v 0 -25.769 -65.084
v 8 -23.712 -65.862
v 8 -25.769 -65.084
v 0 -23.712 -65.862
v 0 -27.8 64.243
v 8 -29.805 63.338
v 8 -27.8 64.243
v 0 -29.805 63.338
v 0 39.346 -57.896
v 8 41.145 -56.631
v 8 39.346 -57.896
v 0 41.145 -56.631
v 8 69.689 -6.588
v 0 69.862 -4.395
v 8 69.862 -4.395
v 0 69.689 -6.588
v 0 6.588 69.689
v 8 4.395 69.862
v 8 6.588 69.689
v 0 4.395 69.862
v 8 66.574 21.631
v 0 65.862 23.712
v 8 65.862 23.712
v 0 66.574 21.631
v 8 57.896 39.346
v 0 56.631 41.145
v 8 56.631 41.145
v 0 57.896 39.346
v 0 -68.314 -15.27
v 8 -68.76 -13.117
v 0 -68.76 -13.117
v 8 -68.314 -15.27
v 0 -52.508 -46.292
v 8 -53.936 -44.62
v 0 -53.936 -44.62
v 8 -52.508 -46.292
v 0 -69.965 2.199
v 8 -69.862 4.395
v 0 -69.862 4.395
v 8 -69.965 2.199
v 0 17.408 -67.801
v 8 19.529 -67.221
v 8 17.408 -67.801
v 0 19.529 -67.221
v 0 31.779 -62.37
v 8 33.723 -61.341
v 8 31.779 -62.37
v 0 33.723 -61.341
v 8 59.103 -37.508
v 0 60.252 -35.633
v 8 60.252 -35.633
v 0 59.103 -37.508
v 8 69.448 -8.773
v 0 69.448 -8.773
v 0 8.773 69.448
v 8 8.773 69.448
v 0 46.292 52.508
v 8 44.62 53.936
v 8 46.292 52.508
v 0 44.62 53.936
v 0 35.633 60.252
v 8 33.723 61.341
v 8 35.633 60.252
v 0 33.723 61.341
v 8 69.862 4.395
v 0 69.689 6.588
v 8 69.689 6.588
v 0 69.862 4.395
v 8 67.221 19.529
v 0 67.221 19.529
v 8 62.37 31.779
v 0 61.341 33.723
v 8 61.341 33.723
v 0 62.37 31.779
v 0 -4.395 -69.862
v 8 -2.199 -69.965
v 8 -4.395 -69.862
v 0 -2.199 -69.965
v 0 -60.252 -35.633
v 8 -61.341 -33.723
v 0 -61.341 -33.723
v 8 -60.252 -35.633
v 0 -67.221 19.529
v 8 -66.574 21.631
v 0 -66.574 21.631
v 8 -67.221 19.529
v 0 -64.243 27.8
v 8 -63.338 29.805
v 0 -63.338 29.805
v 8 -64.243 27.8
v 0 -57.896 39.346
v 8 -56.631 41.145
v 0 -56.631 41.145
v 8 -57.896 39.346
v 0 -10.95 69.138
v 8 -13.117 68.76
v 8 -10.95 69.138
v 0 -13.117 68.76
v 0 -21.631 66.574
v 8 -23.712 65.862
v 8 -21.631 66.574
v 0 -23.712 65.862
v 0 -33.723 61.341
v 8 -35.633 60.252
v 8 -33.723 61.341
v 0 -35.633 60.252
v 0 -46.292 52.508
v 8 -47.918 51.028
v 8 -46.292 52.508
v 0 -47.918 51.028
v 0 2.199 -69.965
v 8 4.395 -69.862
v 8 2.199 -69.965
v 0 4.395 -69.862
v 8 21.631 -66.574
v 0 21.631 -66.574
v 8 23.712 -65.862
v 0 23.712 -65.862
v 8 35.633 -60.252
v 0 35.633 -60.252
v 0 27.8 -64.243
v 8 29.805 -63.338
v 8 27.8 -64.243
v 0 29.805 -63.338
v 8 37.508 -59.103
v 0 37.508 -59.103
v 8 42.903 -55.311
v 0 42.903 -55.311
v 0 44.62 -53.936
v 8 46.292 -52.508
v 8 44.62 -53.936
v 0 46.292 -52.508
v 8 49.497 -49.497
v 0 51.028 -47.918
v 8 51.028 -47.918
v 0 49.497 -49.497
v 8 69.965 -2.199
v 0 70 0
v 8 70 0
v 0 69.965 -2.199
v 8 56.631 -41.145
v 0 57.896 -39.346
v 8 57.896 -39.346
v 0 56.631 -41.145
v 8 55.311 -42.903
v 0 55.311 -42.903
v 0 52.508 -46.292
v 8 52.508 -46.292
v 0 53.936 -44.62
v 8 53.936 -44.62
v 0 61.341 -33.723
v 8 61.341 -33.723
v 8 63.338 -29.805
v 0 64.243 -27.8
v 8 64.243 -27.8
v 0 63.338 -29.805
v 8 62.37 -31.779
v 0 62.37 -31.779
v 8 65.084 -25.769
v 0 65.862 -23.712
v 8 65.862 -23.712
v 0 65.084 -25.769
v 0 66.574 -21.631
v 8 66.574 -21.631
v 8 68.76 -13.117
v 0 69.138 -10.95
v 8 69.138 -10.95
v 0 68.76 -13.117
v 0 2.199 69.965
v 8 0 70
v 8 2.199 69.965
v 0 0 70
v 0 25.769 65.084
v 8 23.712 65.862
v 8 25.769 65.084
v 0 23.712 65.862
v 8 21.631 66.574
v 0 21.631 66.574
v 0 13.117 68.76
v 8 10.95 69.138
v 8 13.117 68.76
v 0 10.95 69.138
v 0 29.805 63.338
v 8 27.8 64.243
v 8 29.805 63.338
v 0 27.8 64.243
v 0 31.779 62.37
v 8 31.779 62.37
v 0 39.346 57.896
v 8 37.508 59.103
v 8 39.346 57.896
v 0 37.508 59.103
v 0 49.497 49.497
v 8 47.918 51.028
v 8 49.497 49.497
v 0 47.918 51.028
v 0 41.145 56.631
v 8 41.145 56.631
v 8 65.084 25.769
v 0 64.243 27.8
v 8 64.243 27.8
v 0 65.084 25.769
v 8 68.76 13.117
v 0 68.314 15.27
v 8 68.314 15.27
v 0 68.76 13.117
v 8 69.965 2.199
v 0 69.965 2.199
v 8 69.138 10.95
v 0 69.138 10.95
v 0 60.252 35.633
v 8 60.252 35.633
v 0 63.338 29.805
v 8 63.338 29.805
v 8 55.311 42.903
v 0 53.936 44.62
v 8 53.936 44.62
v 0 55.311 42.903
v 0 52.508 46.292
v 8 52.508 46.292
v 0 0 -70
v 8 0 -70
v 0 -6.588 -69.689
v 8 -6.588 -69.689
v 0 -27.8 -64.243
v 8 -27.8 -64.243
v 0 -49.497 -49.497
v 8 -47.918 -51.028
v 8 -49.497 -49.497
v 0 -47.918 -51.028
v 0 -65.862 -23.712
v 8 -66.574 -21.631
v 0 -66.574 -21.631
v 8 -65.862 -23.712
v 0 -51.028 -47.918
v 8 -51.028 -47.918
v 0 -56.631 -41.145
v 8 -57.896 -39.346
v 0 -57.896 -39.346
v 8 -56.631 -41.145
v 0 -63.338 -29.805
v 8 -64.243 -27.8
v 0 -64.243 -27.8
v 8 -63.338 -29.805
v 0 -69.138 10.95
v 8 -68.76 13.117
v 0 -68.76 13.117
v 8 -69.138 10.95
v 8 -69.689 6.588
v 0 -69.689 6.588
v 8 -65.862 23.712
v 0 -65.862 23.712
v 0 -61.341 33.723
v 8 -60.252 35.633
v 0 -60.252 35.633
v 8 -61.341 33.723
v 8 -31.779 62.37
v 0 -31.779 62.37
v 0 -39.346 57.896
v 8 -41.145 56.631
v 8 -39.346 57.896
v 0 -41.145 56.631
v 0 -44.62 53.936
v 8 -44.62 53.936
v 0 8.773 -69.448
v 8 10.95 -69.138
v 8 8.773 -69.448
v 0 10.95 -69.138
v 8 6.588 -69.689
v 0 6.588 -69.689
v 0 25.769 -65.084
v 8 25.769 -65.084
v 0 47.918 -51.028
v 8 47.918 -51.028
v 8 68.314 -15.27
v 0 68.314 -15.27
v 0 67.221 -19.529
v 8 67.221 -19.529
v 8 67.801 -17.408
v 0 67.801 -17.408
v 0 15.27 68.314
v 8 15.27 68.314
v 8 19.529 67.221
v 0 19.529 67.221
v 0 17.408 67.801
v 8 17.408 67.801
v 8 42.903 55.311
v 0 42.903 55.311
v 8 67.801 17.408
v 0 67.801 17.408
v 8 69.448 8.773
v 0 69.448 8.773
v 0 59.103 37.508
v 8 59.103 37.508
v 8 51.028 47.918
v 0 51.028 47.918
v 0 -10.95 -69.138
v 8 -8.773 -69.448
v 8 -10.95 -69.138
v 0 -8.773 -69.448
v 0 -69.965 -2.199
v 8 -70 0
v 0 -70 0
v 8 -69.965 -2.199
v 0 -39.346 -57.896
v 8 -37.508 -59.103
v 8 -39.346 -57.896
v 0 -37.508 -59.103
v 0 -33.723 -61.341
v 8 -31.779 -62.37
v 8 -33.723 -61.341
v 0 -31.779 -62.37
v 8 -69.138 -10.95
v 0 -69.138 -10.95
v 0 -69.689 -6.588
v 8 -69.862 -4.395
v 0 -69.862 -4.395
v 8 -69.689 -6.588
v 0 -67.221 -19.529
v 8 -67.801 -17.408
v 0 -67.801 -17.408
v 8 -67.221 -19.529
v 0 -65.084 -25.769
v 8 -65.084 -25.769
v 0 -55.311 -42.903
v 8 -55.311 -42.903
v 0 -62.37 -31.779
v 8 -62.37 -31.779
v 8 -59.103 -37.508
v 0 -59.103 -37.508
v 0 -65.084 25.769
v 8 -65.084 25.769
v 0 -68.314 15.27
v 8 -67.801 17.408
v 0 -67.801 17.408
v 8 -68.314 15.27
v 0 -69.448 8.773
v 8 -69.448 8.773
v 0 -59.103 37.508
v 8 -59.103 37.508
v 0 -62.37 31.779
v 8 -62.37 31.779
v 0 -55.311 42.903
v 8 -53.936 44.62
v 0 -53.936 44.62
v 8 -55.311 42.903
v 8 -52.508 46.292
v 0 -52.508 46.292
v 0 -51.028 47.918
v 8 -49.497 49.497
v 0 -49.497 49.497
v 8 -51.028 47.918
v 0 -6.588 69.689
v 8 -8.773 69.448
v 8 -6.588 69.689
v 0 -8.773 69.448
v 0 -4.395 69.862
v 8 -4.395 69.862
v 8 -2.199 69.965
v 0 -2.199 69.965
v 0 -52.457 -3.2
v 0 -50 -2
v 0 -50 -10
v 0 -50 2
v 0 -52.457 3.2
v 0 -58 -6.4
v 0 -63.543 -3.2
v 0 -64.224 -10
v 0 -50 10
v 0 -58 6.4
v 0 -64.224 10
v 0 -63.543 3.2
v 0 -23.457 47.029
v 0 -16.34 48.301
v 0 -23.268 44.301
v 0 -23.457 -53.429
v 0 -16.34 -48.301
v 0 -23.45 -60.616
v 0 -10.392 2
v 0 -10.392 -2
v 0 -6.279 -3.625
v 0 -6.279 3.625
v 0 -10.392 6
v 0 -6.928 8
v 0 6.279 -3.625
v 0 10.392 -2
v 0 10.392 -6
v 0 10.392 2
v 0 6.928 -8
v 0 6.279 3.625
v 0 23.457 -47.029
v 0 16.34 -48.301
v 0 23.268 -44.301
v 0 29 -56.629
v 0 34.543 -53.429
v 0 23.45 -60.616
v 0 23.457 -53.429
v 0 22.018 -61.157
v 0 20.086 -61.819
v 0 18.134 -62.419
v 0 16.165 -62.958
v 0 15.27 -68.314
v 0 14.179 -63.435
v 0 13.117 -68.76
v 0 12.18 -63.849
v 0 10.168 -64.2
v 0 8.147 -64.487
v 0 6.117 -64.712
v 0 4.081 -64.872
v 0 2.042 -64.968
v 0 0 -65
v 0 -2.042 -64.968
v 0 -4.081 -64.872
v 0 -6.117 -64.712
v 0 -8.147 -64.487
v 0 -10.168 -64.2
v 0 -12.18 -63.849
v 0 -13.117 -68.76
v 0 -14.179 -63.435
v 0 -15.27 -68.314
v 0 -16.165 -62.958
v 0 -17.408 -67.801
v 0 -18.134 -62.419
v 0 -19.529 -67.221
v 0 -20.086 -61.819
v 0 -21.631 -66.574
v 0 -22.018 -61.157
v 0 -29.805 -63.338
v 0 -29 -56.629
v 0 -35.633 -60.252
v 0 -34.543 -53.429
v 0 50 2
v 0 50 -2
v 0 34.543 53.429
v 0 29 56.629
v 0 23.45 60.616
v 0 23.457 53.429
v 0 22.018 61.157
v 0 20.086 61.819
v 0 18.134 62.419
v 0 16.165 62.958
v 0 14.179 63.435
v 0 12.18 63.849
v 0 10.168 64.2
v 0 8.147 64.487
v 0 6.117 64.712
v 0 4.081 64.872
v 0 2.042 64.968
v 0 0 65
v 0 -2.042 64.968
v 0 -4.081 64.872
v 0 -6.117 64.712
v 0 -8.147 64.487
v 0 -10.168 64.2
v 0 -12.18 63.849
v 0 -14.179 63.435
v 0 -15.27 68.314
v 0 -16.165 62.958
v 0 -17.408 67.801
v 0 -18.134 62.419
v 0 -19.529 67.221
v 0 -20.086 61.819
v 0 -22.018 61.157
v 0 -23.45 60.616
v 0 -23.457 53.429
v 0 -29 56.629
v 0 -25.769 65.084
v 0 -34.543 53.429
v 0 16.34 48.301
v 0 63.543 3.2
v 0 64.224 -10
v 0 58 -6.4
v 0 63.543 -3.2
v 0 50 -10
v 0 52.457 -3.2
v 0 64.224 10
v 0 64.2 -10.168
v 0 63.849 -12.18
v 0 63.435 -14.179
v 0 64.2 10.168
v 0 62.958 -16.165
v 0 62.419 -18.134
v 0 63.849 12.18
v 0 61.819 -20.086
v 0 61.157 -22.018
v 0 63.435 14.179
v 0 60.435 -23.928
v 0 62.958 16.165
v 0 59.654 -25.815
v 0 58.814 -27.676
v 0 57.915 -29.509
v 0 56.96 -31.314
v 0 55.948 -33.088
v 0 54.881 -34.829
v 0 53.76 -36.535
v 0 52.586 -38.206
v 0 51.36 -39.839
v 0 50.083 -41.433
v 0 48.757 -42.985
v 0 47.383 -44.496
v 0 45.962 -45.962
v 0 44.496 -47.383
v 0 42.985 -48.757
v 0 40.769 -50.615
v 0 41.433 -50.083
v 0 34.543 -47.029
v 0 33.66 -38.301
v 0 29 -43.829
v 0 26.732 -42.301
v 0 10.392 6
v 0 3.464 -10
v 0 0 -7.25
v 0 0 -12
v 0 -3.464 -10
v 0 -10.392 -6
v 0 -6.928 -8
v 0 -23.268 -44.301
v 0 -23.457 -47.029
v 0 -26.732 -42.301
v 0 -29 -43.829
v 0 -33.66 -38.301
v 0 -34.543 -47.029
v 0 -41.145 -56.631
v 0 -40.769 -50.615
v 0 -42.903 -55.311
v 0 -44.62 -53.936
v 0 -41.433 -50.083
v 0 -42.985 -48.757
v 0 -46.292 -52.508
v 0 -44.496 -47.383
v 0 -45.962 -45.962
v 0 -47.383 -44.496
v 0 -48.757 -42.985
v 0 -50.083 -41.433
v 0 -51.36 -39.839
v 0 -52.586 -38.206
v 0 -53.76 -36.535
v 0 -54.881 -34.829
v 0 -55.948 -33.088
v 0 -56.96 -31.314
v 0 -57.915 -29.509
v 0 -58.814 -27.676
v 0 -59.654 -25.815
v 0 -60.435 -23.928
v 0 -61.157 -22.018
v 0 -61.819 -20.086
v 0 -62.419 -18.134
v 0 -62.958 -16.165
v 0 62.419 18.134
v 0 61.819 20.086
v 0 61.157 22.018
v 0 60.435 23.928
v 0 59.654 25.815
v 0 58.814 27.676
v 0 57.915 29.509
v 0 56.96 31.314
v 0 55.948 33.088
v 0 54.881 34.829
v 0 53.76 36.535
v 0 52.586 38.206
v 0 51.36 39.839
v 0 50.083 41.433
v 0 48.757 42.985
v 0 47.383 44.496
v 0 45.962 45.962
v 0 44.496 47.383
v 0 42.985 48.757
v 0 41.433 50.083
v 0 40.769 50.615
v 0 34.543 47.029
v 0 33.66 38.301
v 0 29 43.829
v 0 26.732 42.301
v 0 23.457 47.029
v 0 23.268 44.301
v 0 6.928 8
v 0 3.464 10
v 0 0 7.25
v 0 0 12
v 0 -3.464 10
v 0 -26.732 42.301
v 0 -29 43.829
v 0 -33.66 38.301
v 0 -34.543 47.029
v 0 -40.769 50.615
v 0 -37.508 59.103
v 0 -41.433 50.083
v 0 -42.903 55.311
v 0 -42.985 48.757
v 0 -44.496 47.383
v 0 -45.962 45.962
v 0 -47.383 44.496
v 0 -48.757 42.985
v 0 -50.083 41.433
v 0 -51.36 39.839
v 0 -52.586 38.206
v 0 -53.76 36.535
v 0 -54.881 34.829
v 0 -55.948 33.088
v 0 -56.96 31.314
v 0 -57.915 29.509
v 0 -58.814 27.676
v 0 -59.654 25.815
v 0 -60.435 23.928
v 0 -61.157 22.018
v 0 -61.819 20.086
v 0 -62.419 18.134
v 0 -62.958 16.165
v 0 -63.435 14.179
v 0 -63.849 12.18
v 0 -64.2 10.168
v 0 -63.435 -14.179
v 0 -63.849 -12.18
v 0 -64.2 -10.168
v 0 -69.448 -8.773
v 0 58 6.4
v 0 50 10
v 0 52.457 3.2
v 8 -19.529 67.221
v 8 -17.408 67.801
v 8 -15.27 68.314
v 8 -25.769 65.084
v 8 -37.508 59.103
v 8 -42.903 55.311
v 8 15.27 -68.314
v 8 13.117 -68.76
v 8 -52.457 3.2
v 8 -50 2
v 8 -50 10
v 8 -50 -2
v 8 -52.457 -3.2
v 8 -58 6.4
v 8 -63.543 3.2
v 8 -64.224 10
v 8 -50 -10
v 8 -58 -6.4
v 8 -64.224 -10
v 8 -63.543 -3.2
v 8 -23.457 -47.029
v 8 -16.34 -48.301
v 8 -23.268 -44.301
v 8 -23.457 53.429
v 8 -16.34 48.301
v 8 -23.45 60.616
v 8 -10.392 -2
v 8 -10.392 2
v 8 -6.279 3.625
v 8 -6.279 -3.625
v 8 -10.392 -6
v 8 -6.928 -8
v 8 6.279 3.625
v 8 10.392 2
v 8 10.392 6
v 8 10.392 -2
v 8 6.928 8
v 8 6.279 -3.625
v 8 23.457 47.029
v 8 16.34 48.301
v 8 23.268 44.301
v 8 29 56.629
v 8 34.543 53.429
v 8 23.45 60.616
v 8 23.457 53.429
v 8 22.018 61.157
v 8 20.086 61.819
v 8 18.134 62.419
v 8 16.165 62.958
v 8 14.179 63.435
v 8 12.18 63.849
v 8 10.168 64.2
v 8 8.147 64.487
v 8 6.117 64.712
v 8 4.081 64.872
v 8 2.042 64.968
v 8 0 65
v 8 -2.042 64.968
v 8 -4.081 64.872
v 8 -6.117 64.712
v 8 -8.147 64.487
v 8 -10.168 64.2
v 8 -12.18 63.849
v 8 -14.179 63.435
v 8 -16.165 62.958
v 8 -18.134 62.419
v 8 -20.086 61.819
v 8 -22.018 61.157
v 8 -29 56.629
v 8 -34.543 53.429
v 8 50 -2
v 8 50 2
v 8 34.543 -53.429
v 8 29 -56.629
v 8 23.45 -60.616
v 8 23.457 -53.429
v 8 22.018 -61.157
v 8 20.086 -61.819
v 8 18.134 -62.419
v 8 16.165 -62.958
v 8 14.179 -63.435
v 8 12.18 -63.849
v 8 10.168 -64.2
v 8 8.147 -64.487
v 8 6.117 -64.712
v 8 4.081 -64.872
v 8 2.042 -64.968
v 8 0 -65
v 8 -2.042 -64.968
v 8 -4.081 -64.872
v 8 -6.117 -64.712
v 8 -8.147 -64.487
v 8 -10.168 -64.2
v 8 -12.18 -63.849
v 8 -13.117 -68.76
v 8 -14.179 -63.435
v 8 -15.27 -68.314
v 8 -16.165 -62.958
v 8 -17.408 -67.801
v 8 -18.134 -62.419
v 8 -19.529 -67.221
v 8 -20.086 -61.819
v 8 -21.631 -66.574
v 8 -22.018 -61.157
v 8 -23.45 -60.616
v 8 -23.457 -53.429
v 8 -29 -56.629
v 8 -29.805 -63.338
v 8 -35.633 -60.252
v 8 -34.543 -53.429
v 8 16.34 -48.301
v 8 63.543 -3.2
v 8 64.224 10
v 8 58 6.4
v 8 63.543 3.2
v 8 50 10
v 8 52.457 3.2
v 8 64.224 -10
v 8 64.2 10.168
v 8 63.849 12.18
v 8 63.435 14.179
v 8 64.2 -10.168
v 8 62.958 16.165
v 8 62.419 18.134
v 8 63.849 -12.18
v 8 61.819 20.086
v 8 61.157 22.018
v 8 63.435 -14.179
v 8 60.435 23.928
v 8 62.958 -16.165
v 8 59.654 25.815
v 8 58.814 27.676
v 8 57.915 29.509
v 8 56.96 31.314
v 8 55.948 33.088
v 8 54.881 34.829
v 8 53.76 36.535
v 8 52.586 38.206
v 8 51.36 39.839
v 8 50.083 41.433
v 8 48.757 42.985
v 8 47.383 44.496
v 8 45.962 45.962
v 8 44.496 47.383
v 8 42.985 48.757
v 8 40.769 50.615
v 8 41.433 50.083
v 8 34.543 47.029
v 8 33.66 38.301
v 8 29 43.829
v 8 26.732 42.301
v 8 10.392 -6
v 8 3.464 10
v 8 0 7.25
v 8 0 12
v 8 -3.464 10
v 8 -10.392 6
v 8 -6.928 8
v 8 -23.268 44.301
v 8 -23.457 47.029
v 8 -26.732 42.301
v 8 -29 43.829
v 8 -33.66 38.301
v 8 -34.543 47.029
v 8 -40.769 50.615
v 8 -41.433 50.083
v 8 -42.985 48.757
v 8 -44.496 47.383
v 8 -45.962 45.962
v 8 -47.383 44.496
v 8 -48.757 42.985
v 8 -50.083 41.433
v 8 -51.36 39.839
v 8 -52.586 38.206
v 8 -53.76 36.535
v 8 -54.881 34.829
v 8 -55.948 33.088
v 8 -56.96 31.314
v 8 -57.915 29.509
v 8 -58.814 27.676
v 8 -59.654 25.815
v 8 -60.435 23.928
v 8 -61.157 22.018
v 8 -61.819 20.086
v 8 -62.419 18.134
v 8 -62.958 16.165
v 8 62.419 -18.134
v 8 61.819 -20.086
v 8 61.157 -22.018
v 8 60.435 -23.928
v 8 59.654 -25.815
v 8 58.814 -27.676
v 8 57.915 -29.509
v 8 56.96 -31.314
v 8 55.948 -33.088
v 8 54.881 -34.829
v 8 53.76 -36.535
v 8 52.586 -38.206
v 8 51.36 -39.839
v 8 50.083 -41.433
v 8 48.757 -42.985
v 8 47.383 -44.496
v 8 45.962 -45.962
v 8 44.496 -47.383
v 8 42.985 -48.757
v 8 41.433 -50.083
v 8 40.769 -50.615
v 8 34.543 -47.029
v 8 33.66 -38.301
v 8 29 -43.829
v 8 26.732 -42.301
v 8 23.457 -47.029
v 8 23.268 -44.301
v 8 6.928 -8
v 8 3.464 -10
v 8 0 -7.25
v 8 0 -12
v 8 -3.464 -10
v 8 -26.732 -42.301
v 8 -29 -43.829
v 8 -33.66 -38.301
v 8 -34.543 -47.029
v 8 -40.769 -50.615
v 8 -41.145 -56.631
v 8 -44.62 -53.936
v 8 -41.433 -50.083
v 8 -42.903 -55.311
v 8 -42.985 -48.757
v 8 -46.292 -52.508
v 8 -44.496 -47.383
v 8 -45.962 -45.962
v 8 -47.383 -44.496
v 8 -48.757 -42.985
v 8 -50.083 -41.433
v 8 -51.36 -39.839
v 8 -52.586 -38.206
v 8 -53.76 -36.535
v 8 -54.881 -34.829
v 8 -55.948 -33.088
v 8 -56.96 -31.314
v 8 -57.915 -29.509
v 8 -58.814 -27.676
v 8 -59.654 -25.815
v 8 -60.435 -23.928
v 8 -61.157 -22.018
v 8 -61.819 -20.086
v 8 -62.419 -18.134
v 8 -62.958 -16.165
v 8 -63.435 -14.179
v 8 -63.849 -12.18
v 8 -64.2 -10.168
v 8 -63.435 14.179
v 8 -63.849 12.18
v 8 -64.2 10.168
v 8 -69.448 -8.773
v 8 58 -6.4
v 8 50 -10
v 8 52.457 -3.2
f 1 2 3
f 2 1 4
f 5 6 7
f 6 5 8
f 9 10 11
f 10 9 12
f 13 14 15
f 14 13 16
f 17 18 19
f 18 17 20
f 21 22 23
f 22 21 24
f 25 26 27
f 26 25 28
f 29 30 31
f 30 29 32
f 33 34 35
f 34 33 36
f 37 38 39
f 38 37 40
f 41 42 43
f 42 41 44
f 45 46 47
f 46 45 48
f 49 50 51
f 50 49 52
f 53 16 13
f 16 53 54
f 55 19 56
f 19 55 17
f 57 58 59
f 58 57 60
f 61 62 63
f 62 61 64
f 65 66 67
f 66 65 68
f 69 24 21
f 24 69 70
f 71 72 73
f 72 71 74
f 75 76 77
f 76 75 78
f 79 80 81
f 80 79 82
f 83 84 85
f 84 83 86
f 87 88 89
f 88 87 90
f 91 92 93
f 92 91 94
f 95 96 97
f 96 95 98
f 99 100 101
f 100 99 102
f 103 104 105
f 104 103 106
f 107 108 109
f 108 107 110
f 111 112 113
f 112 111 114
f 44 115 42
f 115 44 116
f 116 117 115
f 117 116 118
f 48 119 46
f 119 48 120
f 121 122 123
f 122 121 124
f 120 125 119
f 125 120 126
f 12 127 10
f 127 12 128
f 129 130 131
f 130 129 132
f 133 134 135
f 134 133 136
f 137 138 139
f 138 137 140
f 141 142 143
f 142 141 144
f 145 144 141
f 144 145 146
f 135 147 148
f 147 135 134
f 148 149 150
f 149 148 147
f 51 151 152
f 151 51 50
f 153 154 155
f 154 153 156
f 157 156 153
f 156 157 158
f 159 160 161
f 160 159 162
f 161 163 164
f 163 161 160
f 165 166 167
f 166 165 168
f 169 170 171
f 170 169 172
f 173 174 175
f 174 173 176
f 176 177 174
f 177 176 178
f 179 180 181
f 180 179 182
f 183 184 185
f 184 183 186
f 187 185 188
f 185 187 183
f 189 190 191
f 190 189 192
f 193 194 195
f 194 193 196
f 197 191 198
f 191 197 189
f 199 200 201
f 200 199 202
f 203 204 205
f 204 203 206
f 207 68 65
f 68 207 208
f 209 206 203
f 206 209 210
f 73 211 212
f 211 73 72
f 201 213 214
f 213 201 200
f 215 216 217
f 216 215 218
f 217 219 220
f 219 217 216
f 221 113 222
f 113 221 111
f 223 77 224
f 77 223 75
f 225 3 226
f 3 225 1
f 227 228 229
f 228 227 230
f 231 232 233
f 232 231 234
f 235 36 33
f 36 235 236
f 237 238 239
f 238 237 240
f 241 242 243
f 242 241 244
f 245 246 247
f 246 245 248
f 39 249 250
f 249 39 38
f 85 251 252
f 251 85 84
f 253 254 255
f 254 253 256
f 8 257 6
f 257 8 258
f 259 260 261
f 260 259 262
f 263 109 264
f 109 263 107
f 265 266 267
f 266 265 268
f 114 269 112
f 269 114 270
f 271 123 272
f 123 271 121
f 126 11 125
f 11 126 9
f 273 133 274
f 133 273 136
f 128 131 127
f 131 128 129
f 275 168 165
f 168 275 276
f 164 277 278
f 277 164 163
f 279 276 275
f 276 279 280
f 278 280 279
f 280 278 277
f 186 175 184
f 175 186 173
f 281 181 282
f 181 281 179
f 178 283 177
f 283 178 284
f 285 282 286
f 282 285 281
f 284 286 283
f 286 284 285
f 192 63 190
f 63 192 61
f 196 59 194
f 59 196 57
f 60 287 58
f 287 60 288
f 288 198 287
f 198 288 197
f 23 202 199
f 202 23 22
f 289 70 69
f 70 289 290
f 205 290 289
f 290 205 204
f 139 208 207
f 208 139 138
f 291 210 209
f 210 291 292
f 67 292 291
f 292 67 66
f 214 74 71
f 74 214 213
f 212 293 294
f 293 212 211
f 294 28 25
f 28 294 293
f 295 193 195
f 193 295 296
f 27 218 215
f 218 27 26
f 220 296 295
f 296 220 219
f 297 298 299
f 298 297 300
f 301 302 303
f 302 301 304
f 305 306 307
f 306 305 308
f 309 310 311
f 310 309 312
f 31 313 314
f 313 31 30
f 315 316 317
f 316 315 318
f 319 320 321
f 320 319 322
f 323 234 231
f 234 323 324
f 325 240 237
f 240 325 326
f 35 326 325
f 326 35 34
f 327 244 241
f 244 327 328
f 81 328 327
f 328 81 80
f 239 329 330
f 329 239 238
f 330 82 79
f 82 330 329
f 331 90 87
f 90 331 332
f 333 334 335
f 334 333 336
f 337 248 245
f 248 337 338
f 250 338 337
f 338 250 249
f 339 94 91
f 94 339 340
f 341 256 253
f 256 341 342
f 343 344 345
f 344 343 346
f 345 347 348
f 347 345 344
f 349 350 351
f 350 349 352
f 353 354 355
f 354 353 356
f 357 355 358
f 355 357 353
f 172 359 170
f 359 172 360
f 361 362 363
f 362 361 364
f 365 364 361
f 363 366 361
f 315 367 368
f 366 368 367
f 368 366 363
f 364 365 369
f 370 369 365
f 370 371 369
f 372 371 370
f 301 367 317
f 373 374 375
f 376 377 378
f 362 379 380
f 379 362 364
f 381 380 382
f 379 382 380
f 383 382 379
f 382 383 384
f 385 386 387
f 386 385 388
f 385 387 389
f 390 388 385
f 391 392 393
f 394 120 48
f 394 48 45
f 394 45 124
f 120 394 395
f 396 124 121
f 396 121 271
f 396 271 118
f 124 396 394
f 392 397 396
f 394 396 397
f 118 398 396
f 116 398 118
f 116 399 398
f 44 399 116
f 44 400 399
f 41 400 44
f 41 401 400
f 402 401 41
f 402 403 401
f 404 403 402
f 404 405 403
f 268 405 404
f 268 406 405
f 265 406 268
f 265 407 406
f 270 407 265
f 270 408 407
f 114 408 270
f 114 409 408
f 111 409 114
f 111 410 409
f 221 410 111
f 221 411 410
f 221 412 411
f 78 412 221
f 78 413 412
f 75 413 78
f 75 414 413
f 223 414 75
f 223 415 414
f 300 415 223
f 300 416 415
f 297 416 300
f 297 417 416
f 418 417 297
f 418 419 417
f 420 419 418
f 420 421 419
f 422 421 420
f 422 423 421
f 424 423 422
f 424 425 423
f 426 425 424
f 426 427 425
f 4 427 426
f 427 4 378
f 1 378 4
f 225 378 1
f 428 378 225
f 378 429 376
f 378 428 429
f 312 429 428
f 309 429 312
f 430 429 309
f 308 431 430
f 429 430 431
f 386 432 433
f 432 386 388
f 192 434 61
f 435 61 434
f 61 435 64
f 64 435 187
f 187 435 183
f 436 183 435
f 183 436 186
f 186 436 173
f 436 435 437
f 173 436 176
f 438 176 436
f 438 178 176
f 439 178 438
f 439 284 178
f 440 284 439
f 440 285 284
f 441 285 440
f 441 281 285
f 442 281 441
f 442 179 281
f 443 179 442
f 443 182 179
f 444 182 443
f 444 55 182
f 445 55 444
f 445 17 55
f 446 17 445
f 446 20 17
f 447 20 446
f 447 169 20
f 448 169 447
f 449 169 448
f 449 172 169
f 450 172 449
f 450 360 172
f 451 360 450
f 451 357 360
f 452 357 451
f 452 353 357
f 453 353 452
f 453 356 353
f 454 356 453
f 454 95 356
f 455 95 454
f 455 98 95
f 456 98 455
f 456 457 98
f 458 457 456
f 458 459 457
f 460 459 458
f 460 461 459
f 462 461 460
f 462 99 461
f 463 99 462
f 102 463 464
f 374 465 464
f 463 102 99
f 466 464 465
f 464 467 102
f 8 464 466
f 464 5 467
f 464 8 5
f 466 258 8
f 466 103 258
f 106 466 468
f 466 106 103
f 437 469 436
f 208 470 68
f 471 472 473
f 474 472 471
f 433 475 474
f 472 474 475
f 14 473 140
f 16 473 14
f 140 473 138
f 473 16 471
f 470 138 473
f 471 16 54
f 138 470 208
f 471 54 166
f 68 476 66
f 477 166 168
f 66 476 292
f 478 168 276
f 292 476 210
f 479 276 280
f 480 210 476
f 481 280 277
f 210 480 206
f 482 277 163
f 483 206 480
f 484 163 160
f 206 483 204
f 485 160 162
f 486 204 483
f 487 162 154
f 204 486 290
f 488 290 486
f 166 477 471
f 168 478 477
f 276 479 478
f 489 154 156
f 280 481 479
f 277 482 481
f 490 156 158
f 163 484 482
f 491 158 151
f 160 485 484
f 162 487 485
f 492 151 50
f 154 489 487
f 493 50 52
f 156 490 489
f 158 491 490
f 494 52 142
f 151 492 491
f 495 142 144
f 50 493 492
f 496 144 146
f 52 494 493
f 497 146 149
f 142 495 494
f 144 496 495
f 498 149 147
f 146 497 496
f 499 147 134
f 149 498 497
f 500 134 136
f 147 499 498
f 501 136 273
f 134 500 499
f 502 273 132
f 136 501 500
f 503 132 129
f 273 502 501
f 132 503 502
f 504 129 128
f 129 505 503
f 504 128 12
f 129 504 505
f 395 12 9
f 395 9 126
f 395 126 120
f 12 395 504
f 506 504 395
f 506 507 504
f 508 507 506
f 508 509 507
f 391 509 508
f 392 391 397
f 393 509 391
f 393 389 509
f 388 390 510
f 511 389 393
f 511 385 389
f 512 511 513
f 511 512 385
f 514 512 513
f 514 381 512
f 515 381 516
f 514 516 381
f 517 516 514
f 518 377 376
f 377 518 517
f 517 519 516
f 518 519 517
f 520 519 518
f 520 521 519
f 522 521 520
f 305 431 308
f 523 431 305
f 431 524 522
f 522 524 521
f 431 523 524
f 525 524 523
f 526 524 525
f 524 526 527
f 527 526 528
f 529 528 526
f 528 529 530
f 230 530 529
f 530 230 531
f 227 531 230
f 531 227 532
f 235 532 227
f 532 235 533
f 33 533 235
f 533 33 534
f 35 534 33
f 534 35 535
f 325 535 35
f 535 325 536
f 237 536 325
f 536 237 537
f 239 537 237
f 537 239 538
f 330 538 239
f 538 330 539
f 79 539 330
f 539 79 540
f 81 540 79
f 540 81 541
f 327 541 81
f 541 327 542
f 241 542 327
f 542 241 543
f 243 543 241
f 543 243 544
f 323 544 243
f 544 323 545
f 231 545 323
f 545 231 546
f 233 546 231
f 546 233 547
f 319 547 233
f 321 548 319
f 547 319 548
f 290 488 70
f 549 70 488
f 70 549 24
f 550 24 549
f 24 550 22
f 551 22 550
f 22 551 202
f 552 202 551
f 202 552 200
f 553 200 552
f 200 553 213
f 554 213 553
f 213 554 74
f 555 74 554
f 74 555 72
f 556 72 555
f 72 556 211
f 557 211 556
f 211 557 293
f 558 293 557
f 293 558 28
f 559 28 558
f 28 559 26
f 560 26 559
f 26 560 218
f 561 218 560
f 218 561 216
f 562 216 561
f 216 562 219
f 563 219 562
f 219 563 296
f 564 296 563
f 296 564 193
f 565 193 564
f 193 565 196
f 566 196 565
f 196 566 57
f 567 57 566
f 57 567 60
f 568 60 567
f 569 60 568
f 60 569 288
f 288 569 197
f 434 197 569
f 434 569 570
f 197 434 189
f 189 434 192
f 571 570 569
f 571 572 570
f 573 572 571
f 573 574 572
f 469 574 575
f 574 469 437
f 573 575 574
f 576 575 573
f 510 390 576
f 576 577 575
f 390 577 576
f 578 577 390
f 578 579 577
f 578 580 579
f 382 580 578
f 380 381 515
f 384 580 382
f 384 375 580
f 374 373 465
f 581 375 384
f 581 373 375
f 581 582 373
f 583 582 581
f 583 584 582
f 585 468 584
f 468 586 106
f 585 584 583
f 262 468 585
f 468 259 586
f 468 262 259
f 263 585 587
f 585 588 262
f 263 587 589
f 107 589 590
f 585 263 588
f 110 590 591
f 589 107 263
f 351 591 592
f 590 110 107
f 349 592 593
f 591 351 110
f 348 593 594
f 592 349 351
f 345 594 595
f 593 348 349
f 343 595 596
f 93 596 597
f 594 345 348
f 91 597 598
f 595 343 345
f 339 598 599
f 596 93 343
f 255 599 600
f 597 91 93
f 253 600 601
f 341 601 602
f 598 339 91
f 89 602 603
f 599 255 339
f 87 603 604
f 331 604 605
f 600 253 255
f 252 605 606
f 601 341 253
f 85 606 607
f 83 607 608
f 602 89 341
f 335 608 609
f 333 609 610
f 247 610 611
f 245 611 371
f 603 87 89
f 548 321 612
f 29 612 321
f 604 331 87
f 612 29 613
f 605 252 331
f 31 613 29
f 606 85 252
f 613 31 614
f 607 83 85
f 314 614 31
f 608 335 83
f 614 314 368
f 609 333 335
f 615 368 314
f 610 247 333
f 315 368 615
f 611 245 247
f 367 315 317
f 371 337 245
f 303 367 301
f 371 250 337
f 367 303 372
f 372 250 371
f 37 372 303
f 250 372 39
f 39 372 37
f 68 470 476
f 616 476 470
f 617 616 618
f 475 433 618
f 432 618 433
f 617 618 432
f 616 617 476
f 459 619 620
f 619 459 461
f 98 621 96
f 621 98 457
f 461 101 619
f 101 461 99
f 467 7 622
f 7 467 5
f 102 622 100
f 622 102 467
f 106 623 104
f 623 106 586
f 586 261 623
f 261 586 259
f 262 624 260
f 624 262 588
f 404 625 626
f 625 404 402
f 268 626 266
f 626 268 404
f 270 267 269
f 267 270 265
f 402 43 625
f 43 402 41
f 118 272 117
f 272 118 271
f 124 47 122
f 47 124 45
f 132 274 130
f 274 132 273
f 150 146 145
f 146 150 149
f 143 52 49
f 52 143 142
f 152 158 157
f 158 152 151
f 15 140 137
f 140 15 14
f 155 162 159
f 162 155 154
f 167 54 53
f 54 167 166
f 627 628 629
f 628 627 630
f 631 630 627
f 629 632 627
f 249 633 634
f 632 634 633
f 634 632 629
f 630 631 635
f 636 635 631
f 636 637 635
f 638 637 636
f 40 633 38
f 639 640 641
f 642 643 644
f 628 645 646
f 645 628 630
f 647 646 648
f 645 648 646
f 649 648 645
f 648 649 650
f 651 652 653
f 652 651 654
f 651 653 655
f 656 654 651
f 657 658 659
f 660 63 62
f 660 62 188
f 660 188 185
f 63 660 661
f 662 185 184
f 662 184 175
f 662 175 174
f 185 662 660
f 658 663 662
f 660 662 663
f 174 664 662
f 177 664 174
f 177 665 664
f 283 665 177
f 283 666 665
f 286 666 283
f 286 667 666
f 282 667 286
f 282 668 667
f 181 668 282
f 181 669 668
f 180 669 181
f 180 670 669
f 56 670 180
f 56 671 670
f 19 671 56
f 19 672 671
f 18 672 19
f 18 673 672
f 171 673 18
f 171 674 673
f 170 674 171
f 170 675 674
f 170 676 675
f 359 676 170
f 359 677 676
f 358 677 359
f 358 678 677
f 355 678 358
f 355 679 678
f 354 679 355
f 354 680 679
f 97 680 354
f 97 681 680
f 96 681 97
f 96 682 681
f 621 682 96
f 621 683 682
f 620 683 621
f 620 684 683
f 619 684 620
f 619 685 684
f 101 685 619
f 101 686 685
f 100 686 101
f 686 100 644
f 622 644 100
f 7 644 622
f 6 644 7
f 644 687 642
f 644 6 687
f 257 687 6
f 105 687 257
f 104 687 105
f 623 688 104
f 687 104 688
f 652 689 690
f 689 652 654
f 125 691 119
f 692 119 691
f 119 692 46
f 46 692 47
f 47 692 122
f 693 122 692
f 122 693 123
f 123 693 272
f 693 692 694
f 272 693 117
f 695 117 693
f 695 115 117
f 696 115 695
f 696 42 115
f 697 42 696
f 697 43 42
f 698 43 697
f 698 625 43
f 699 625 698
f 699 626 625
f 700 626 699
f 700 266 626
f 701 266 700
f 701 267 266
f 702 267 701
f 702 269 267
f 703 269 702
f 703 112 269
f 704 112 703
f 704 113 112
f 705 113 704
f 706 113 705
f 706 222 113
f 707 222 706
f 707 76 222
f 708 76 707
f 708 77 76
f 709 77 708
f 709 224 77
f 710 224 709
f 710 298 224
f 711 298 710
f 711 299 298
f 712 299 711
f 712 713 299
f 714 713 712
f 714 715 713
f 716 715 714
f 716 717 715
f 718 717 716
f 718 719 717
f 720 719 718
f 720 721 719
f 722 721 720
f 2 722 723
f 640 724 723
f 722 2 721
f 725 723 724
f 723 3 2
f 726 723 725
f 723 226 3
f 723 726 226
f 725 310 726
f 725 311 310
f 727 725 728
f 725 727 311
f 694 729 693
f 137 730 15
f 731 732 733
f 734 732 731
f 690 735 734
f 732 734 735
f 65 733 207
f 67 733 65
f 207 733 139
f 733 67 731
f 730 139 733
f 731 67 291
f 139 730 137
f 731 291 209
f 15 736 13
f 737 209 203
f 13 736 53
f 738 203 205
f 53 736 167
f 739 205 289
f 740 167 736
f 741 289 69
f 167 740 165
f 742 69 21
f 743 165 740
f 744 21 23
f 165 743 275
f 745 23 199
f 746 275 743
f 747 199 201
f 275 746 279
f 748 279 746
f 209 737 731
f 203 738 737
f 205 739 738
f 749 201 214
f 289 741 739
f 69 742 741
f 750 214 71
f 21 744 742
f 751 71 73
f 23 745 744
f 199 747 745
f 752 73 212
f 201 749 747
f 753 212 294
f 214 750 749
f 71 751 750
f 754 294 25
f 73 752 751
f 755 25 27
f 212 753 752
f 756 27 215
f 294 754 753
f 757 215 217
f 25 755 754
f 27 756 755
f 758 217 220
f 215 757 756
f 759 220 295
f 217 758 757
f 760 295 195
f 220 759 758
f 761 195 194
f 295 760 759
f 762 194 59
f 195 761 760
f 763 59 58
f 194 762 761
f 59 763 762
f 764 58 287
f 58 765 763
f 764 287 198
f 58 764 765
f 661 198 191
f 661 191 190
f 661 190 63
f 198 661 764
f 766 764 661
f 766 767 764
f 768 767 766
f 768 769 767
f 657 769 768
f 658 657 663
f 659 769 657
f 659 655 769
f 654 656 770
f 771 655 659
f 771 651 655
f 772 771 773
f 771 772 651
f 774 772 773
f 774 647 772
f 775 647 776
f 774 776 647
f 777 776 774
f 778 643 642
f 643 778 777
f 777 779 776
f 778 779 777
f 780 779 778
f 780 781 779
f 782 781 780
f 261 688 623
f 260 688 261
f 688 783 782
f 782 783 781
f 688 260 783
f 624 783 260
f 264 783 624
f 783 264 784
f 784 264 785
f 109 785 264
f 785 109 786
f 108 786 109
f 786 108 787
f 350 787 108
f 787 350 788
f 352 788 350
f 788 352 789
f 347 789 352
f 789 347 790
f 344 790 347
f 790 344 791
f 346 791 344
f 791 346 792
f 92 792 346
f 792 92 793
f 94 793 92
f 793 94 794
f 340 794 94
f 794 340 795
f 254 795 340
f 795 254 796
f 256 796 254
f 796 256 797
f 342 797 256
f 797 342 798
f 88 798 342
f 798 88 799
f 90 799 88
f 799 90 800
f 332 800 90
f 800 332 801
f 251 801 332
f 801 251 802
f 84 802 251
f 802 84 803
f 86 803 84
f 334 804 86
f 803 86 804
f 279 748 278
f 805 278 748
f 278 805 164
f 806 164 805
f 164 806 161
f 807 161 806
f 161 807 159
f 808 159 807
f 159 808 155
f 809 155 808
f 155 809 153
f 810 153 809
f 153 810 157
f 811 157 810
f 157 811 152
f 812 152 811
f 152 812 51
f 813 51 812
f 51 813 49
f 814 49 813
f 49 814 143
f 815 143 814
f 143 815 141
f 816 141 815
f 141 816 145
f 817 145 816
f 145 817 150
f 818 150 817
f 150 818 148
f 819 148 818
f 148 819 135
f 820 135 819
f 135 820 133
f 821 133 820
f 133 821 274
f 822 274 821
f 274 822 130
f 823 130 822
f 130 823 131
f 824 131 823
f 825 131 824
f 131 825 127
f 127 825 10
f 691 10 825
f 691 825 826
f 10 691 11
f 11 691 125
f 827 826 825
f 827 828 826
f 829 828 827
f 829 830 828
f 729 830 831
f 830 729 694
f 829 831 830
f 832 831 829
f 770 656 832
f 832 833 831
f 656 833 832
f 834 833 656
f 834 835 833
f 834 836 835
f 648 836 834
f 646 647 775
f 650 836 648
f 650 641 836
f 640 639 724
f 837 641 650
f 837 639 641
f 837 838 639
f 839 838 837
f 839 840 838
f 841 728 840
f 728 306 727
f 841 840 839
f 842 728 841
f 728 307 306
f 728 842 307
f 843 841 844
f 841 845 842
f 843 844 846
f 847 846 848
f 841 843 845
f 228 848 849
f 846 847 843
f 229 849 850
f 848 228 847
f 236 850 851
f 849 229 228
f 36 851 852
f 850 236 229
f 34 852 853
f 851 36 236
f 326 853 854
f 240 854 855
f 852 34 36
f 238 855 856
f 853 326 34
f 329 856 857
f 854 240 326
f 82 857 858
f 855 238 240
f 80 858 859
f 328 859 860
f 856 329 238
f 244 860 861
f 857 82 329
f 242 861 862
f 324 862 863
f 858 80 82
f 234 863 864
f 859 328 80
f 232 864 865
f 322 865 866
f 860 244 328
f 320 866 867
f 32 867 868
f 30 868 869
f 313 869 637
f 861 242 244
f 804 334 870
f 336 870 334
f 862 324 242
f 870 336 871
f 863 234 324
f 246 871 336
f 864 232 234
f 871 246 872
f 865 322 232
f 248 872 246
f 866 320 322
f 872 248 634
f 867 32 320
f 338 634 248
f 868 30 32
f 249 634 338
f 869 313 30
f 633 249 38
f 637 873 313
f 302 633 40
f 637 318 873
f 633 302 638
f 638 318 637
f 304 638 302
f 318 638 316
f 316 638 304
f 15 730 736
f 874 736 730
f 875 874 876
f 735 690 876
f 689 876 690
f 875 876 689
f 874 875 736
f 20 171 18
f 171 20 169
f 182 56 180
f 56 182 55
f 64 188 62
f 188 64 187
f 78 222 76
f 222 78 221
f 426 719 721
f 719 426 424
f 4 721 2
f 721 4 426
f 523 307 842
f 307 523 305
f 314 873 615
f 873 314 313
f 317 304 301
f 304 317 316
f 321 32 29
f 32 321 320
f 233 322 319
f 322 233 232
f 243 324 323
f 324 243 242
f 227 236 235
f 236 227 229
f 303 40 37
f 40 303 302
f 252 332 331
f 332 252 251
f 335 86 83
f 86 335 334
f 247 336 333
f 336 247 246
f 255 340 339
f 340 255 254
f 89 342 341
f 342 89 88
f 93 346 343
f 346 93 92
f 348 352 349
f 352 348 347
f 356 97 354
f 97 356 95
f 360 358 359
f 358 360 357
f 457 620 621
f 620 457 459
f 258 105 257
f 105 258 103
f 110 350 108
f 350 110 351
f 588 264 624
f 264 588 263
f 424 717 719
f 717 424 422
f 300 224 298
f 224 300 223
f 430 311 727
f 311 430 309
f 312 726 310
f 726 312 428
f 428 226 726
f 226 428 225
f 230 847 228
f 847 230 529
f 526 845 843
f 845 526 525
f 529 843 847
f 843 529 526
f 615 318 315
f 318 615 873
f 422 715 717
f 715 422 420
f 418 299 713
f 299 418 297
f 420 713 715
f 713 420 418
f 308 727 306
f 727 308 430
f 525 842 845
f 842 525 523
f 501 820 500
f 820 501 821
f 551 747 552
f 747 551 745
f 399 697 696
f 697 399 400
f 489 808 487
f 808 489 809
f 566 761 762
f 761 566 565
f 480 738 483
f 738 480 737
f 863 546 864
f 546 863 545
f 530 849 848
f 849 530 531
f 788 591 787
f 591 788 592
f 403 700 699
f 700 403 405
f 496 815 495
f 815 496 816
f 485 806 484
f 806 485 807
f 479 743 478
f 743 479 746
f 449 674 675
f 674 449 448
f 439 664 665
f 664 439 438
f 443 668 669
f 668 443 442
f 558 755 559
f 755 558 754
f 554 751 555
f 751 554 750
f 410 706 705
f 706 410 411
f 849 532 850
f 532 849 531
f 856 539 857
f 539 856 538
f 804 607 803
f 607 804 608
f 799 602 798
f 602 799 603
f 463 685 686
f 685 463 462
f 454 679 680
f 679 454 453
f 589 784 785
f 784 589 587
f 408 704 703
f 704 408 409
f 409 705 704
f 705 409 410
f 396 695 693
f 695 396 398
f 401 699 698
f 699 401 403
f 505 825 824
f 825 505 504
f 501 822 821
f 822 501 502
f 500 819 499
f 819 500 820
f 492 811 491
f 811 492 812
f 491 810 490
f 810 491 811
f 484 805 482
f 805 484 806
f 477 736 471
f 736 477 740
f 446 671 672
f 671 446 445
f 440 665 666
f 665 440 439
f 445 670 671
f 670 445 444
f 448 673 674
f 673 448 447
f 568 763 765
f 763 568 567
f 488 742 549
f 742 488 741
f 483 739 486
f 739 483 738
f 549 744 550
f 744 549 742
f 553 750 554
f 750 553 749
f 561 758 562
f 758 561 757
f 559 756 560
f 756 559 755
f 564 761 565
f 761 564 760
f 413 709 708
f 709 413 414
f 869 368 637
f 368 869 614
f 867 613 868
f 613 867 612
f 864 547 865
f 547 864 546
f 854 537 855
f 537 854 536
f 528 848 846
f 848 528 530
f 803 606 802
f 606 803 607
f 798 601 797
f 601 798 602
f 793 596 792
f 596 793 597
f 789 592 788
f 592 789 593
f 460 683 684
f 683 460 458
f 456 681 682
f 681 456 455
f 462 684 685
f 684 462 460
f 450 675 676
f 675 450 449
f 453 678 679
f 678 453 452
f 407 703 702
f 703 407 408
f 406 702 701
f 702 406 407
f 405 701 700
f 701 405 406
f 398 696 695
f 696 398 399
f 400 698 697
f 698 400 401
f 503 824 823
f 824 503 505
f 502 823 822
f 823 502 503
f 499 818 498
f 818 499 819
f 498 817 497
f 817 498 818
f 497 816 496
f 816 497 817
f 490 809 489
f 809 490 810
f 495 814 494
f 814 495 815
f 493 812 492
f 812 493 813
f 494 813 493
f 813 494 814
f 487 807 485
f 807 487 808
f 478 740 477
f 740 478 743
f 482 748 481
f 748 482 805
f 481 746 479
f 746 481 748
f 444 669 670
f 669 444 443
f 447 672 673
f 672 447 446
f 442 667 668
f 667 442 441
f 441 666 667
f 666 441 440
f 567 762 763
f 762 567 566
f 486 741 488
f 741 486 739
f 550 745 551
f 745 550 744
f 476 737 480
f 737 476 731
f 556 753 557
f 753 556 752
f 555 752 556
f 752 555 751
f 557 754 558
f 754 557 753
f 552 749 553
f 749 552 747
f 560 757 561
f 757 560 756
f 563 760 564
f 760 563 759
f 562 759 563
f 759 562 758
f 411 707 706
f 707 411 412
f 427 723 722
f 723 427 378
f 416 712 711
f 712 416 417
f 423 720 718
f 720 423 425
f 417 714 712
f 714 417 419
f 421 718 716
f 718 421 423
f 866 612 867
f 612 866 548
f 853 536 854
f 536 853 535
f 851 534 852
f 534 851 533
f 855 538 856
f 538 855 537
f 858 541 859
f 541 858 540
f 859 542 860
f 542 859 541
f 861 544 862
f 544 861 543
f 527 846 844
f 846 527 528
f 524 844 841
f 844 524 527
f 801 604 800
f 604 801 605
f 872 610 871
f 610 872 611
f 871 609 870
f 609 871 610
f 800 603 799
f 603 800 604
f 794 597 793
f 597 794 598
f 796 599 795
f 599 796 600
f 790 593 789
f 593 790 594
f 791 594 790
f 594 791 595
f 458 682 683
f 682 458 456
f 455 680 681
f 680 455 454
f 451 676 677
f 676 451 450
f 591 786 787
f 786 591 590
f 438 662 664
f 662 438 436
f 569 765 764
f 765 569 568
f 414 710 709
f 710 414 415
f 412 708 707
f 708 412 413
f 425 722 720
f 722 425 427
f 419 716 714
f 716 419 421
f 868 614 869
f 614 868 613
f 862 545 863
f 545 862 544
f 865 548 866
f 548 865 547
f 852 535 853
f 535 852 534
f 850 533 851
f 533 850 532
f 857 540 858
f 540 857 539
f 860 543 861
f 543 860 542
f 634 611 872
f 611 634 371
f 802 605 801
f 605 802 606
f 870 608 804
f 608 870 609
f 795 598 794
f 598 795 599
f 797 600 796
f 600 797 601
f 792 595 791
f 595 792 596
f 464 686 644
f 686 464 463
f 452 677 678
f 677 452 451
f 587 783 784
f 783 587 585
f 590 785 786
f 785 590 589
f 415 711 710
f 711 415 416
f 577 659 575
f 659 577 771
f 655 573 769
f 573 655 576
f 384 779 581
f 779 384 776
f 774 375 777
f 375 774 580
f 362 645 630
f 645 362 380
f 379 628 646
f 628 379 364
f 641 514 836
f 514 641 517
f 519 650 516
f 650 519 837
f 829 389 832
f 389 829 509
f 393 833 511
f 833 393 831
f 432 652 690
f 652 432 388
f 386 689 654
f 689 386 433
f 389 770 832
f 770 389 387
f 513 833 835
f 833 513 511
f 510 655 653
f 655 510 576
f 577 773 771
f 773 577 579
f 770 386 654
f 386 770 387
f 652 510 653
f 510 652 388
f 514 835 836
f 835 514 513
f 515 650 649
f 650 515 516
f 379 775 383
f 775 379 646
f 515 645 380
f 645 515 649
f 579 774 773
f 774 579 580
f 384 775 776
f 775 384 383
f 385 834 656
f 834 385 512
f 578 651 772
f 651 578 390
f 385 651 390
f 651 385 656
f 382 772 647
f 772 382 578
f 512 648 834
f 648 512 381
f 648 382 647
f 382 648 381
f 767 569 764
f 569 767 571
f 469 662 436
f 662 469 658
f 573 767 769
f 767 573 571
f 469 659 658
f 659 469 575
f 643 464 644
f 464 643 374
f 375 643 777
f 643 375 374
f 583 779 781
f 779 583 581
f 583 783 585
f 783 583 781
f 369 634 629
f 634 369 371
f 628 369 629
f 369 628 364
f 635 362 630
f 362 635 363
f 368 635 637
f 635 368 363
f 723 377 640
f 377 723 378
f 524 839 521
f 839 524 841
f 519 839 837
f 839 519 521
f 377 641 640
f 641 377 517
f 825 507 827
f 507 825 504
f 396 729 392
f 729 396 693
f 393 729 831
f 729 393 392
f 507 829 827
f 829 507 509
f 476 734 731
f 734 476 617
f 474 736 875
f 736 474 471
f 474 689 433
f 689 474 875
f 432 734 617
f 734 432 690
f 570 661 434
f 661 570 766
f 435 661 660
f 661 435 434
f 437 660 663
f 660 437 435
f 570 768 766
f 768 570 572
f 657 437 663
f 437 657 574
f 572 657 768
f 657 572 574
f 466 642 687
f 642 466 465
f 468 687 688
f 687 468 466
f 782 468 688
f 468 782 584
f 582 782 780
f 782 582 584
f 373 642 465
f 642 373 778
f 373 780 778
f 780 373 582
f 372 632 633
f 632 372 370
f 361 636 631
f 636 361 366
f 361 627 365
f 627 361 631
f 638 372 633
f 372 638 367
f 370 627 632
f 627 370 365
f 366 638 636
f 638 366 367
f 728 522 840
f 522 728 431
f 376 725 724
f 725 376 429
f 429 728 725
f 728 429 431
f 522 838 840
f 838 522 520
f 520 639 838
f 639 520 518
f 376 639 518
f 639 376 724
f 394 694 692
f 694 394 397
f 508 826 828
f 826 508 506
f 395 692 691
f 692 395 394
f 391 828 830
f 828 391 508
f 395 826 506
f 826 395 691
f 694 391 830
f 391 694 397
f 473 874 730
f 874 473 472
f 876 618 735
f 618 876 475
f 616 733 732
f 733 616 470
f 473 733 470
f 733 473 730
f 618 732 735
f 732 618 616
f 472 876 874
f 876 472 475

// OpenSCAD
//bearing diameter= 29
//bearing radius = 14.5

//cube([40,120,10]);

//nut radius = 8mm

wheel1();
hub();

difference(){
    rotate([0,90,0]){
        for (i=[1:1:6]){
                rotate([0,0,i*60]){
                    translate([-10,50,0]){
                    cube([20,15,8]);
                    }
                    
                }
            }
        }
        
    rotate([0,90,0]){
        for (i=[1:1:6]){
                rotate([0,0,i*60]){
                    
                    $fn=6;
                    translate([0,58,-5]){
                        cylinder(20,6.4,6.4);
                        }
                    
                }
            }
        }    
    }

module wheel1(){
    rotate([0,90,0]){
        
        /*
        difference(){
            cylinder(1,70.5,70.5, $fn=100);
            cylinder(1,68,68);
        }
        
        translate([0,0,7]){
            difference(){
                cylinder(1,70.5,70.5, $fn=100);
                cylinder(2,68,68);
            }
        }
        */
        
        
        
        difference(){
            cylinder(8,70,70, $fn=200);
            translate([0,0,-5]){
                cylinder(20,65,65, $fn=200);
            }
        }
    }
    
    for ( i = [1:1:6]) {
        rotate([i*60, 0,0]){
            translate([0,7,-2]){
                cube([8, 45, 4]);
            }
        }
    }
}

module hub(){
        rotate([0,90,0]){
        difference(){
            $fn=6;
            cylinder(8,12,12);
            translate([0,0,-5]){
                cylinder(20,7.25,7.25);
            }
        }
    }
    
    
    }
